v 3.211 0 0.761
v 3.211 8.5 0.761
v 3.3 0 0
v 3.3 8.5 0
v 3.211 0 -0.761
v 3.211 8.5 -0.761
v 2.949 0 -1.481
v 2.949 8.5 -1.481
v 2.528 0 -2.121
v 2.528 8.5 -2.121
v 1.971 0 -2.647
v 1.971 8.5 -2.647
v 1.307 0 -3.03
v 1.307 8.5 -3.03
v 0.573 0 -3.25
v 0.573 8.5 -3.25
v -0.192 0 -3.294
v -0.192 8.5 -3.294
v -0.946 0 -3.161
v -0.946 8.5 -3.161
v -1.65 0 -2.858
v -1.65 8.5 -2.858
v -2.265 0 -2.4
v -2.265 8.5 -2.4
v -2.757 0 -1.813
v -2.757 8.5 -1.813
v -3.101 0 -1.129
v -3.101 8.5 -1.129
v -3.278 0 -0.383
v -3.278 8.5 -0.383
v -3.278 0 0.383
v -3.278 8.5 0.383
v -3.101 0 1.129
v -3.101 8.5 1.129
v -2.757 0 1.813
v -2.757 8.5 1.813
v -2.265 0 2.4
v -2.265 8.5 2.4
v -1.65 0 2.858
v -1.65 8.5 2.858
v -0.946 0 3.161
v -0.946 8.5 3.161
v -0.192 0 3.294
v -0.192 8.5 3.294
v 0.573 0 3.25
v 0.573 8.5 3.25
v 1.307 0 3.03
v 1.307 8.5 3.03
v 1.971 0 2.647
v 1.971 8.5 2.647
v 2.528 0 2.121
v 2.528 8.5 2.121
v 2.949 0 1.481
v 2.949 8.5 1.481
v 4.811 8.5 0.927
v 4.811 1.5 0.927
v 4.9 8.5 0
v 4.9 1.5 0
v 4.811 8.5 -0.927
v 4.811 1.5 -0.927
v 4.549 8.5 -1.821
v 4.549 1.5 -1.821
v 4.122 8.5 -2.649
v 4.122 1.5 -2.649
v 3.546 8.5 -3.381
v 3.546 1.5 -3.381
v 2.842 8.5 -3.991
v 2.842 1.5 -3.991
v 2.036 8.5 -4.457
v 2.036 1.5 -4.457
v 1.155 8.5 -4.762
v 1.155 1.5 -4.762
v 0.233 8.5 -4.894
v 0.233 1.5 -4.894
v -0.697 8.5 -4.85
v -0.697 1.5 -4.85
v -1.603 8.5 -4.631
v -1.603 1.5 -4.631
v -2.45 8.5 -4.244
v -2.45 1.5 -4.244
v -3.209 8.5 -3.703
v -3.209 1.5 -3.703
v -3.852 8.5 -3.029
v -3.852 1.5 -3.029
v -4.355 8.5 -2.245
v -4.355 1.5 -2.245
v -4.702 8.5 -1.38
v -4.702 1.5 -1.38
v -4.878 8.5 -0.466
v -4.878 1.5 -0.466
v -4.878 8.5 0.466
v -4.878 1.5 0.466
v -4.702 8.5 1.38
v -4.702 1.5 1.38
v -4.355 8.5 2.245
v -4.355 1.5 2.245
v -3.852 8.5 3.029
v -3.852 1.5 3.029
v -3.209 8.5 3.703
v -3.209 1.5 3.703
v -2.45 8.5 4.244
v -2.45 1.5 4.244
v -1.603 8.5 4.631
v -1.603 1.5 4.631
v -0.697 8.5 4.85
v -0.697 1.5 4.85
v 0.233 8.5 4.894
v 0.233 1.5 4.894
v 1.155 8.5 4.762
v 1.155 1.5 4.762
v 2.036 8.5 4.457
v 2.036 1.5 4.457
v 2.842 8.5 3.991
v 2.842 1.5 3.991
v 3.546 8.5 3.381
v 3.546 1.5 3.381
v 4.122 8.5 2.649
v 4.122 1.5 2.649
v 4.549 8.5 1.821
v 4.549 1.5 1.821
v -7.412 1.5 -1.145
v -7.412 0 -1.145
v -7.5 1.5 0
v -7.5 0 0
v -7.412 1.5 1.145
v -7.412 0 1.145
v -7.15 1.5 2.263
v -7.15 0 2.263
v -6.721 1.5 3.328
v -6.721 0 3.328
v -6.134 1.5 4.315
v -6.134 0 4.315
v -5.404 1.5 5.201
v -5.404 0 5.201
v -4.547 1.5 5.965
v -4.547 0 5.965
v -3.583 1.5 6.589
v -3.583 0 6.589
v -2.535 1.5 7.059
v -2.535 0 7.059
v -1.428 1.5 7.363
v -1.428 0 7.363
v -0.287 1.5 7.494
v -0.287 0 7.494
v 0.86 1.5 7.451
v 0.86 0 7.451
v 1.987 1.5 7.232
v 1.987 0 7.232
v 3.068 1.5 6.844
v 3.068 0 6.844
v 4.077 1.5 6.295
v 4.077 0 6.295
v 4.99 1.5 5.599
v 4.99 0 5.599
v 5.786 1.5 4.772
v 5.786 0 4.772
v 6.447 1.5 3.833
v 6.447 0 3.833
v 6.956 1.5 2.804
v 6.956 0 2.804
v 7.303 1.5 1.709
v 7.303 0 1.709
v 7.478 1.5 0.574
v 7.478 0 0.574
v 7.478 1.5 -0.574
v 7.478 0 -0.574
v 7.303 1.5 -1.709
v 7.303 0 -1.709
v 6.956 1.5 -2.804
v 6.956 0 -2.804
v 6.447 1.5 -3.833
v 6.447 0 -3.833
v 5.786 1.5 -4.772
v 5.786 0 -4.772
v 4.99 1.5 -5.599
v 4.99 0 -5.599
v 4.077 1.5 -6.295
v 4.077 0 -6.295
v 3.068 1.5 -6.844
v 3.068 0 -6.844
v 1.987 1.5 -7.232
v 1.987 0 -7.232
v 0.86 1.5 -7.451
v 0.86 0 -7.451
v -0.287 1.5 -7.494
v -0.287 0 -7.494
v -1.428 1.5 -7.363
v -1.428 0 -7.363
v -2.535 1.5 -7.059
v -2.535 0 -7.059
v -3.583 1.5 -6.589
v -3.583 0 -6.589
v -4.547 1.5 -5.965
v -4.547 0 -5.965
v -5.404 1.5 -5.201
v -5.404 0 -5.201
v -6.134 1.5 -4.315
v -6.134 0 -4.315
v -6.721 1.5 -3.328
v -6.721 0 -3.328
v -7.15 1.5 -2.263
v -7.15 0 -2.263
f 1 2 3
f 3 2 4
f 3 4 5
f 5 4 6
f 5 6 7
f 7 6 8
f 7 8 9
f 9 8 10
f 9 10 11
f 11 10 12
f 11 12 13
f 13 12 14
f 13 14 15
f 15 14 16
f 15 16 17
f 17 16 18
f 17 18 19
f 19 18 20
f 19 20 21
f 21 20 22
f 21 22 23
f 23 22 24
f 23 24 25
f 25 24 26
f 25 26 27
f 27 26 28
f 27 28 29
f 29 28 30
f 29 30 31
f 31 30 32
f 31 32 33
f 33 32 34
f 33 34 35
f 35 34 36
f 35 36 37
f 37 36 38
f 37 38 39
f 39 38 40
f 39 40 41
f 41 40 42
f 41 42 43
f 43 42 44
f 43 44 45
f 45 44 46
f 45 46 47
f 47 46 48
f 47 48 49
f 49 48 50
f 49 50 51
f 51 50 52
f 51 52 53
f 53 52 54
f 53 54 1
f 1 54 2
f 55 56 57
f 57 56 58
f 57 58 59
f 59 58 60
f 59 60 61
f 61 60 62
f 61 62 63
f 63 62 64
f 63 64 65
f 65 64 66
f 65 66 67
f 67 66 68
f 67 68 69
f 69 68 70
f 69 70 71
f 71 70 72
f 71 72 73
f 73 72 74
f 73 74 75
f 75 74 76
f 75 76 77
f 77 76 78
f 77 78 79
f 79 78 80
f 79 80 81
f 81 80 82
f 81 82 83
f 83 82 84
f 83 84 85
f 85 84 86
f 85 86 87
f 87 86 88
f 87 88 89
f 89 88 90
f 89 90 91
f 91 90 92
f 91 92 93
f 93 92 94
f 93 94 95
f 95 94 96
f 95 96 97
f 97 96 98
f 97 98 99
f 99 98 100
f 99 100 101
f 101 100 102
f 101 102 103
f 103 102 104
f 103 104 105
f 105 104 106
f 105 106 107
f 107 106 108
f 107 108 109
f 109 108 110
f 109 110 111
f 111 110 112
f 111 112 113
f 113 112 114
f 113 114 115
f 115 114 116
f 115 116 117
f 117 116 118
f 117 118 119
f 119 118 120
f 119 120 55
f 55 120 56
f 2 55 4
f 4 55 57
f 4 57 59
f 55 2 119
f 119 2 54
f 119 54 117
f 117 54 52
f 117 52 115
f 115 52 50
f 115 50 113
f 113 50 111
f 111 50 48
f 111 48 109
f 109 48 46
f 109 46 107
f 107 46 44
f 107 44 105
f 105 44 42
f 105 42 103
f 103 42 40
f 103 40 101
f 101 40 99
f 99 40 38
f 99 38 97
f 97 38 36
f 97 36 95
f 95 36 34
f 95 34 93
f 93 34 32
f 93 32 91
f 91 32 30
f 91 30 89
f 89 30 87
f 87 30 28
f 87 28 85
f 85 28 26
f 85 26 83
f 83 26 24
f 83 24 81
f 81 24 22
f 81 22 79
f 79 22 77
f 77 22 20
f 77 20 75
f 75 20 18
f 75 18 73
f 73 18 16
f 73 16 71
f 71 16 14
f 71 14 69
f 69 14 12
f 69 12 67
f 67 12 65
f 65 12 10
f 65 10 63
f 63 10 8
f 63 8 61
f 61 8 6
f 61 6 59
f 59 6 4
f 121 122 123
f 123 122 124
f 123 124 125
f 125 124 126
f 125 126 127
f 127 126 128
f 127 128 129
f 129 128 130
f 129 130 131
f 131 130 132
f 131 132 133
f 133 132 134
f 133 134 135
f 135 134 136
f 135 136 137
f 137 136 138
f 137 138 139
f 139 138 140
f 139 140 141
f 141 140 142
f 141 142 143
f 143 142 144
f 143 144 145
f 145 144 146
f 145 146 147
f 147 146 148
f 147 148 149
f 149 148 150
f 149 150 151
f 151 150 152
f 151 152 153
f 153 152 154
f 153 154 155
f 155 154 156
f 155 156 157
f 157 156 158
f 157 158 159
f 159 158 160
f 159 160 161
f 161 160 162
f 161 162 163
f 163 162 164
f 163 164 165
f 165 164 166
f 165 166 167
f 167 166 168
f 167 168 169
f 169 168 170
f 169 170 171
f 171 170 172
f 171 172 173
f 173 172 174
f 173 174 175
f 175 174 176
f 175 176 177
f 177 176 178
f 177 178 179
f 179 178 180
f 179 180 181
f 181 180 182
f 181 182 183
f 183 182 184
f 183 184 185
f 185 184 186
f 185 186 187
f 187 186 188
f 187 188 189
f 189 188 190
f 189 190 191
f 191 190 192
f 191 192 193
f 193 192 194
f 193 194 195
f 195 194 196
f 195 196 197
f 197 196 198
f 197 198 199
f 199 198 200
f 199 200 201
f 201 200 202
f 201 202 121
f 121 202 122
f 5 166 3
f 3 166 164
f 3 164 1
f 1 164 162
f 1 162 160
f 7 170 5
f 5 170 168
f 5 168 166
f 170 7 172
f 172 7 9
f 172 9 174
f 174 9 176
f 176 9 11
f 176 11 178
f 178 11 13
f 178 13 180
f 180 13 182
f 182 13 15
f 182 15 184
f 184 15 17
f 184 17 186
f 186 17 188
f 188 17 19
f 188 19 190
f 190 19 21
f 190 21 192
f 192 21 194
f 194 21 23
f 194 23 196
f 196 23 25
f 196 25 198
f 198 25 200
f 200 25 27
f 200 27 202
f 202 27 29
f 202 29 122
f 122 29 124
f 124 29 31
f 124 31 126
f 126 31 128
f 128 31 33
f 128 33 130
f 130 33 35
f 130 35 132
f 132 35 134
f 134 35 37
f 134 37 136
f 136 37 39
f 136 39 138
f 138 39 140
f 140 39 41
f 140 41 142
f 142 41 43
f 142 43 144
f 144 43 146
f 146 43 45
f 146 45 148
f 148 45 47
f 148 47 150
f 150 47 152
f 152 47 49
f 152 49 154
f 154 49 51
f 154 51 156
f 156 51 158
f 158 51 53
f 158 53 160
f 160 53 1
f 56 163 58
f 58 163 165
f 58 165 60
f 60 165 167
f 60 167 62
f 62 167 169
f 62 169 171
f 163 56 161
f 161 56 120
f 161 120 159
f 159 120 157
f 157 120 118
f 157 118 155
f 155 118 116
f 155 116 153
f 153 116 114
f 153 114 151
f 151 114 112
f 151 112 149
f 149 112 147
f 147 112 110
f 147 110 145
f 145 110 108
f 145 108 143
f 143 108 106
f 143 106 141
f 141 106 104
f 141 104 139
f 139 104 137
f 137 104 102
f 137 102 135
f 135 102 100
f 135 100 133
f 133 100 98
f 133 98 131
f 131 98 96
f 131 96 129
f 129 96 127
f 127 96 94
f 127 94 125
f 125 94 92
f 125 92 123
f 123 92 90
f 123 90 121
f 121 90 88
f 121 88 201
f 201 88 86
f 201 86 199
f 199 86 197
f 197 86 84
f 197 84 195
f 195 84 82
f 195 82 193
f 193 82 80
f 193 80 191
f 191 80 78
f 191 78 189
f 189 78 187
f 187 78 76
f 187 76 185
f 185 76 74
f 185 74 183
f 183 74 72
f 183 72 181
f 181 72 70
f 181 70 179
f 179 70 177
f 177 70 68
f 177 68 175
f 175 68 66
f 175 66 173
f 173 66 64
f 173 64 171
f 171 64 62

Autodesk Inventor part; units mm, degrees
ref_plane "YZ Plane" through (0, 0, 0) normal (1, 0, 0) x (0, 1, 0)
ref_plane "XZ Plane" through (0, 0, 0) normal (0, 1, 0) x (-1, 0, 0)
ref_plane "XY Plane" through (0, 0, 0) normal (0, 0, 1) x (1, 0, 0)
sketch "Эскиз1" plane through (0, 0, 0) normal (0, 1, 0) x (-1, 0, 0)
  circle A0 centre (0, 0) radius 7.5
  dimension "d0" = 15
extrude "Выдавливание1" add sketch "Эскиз1" along normal blind 1.5
sketch "Эскиз2" plane through (0, 1.5, 0) normal (0, 1, 0) x (1, 0, 0)
  circle A0 centre (0, 0) radius 7.5 projected
  circle A1 centre (0, 0) radius 4.9
  dimension "d3" = 9.8
extrude "Выдавливание2" add sketch "Эскиз2" along normal blind 7 contours A1
sketch "Эскиз4" plane through (0, 8.5, 0) normal (0, 1, 0) x (1, 0, 0)
  circle A0 centre (0, 0) radius 4.9 projected
  circle A1 centre (0, 0) radius 3.3
  dimension "d9" = 6.6
extrude "Выдавливание4" cut sketch "Эскиз4" against normal through all contours A1
properties part number "Шайба_Уплотнитель"
